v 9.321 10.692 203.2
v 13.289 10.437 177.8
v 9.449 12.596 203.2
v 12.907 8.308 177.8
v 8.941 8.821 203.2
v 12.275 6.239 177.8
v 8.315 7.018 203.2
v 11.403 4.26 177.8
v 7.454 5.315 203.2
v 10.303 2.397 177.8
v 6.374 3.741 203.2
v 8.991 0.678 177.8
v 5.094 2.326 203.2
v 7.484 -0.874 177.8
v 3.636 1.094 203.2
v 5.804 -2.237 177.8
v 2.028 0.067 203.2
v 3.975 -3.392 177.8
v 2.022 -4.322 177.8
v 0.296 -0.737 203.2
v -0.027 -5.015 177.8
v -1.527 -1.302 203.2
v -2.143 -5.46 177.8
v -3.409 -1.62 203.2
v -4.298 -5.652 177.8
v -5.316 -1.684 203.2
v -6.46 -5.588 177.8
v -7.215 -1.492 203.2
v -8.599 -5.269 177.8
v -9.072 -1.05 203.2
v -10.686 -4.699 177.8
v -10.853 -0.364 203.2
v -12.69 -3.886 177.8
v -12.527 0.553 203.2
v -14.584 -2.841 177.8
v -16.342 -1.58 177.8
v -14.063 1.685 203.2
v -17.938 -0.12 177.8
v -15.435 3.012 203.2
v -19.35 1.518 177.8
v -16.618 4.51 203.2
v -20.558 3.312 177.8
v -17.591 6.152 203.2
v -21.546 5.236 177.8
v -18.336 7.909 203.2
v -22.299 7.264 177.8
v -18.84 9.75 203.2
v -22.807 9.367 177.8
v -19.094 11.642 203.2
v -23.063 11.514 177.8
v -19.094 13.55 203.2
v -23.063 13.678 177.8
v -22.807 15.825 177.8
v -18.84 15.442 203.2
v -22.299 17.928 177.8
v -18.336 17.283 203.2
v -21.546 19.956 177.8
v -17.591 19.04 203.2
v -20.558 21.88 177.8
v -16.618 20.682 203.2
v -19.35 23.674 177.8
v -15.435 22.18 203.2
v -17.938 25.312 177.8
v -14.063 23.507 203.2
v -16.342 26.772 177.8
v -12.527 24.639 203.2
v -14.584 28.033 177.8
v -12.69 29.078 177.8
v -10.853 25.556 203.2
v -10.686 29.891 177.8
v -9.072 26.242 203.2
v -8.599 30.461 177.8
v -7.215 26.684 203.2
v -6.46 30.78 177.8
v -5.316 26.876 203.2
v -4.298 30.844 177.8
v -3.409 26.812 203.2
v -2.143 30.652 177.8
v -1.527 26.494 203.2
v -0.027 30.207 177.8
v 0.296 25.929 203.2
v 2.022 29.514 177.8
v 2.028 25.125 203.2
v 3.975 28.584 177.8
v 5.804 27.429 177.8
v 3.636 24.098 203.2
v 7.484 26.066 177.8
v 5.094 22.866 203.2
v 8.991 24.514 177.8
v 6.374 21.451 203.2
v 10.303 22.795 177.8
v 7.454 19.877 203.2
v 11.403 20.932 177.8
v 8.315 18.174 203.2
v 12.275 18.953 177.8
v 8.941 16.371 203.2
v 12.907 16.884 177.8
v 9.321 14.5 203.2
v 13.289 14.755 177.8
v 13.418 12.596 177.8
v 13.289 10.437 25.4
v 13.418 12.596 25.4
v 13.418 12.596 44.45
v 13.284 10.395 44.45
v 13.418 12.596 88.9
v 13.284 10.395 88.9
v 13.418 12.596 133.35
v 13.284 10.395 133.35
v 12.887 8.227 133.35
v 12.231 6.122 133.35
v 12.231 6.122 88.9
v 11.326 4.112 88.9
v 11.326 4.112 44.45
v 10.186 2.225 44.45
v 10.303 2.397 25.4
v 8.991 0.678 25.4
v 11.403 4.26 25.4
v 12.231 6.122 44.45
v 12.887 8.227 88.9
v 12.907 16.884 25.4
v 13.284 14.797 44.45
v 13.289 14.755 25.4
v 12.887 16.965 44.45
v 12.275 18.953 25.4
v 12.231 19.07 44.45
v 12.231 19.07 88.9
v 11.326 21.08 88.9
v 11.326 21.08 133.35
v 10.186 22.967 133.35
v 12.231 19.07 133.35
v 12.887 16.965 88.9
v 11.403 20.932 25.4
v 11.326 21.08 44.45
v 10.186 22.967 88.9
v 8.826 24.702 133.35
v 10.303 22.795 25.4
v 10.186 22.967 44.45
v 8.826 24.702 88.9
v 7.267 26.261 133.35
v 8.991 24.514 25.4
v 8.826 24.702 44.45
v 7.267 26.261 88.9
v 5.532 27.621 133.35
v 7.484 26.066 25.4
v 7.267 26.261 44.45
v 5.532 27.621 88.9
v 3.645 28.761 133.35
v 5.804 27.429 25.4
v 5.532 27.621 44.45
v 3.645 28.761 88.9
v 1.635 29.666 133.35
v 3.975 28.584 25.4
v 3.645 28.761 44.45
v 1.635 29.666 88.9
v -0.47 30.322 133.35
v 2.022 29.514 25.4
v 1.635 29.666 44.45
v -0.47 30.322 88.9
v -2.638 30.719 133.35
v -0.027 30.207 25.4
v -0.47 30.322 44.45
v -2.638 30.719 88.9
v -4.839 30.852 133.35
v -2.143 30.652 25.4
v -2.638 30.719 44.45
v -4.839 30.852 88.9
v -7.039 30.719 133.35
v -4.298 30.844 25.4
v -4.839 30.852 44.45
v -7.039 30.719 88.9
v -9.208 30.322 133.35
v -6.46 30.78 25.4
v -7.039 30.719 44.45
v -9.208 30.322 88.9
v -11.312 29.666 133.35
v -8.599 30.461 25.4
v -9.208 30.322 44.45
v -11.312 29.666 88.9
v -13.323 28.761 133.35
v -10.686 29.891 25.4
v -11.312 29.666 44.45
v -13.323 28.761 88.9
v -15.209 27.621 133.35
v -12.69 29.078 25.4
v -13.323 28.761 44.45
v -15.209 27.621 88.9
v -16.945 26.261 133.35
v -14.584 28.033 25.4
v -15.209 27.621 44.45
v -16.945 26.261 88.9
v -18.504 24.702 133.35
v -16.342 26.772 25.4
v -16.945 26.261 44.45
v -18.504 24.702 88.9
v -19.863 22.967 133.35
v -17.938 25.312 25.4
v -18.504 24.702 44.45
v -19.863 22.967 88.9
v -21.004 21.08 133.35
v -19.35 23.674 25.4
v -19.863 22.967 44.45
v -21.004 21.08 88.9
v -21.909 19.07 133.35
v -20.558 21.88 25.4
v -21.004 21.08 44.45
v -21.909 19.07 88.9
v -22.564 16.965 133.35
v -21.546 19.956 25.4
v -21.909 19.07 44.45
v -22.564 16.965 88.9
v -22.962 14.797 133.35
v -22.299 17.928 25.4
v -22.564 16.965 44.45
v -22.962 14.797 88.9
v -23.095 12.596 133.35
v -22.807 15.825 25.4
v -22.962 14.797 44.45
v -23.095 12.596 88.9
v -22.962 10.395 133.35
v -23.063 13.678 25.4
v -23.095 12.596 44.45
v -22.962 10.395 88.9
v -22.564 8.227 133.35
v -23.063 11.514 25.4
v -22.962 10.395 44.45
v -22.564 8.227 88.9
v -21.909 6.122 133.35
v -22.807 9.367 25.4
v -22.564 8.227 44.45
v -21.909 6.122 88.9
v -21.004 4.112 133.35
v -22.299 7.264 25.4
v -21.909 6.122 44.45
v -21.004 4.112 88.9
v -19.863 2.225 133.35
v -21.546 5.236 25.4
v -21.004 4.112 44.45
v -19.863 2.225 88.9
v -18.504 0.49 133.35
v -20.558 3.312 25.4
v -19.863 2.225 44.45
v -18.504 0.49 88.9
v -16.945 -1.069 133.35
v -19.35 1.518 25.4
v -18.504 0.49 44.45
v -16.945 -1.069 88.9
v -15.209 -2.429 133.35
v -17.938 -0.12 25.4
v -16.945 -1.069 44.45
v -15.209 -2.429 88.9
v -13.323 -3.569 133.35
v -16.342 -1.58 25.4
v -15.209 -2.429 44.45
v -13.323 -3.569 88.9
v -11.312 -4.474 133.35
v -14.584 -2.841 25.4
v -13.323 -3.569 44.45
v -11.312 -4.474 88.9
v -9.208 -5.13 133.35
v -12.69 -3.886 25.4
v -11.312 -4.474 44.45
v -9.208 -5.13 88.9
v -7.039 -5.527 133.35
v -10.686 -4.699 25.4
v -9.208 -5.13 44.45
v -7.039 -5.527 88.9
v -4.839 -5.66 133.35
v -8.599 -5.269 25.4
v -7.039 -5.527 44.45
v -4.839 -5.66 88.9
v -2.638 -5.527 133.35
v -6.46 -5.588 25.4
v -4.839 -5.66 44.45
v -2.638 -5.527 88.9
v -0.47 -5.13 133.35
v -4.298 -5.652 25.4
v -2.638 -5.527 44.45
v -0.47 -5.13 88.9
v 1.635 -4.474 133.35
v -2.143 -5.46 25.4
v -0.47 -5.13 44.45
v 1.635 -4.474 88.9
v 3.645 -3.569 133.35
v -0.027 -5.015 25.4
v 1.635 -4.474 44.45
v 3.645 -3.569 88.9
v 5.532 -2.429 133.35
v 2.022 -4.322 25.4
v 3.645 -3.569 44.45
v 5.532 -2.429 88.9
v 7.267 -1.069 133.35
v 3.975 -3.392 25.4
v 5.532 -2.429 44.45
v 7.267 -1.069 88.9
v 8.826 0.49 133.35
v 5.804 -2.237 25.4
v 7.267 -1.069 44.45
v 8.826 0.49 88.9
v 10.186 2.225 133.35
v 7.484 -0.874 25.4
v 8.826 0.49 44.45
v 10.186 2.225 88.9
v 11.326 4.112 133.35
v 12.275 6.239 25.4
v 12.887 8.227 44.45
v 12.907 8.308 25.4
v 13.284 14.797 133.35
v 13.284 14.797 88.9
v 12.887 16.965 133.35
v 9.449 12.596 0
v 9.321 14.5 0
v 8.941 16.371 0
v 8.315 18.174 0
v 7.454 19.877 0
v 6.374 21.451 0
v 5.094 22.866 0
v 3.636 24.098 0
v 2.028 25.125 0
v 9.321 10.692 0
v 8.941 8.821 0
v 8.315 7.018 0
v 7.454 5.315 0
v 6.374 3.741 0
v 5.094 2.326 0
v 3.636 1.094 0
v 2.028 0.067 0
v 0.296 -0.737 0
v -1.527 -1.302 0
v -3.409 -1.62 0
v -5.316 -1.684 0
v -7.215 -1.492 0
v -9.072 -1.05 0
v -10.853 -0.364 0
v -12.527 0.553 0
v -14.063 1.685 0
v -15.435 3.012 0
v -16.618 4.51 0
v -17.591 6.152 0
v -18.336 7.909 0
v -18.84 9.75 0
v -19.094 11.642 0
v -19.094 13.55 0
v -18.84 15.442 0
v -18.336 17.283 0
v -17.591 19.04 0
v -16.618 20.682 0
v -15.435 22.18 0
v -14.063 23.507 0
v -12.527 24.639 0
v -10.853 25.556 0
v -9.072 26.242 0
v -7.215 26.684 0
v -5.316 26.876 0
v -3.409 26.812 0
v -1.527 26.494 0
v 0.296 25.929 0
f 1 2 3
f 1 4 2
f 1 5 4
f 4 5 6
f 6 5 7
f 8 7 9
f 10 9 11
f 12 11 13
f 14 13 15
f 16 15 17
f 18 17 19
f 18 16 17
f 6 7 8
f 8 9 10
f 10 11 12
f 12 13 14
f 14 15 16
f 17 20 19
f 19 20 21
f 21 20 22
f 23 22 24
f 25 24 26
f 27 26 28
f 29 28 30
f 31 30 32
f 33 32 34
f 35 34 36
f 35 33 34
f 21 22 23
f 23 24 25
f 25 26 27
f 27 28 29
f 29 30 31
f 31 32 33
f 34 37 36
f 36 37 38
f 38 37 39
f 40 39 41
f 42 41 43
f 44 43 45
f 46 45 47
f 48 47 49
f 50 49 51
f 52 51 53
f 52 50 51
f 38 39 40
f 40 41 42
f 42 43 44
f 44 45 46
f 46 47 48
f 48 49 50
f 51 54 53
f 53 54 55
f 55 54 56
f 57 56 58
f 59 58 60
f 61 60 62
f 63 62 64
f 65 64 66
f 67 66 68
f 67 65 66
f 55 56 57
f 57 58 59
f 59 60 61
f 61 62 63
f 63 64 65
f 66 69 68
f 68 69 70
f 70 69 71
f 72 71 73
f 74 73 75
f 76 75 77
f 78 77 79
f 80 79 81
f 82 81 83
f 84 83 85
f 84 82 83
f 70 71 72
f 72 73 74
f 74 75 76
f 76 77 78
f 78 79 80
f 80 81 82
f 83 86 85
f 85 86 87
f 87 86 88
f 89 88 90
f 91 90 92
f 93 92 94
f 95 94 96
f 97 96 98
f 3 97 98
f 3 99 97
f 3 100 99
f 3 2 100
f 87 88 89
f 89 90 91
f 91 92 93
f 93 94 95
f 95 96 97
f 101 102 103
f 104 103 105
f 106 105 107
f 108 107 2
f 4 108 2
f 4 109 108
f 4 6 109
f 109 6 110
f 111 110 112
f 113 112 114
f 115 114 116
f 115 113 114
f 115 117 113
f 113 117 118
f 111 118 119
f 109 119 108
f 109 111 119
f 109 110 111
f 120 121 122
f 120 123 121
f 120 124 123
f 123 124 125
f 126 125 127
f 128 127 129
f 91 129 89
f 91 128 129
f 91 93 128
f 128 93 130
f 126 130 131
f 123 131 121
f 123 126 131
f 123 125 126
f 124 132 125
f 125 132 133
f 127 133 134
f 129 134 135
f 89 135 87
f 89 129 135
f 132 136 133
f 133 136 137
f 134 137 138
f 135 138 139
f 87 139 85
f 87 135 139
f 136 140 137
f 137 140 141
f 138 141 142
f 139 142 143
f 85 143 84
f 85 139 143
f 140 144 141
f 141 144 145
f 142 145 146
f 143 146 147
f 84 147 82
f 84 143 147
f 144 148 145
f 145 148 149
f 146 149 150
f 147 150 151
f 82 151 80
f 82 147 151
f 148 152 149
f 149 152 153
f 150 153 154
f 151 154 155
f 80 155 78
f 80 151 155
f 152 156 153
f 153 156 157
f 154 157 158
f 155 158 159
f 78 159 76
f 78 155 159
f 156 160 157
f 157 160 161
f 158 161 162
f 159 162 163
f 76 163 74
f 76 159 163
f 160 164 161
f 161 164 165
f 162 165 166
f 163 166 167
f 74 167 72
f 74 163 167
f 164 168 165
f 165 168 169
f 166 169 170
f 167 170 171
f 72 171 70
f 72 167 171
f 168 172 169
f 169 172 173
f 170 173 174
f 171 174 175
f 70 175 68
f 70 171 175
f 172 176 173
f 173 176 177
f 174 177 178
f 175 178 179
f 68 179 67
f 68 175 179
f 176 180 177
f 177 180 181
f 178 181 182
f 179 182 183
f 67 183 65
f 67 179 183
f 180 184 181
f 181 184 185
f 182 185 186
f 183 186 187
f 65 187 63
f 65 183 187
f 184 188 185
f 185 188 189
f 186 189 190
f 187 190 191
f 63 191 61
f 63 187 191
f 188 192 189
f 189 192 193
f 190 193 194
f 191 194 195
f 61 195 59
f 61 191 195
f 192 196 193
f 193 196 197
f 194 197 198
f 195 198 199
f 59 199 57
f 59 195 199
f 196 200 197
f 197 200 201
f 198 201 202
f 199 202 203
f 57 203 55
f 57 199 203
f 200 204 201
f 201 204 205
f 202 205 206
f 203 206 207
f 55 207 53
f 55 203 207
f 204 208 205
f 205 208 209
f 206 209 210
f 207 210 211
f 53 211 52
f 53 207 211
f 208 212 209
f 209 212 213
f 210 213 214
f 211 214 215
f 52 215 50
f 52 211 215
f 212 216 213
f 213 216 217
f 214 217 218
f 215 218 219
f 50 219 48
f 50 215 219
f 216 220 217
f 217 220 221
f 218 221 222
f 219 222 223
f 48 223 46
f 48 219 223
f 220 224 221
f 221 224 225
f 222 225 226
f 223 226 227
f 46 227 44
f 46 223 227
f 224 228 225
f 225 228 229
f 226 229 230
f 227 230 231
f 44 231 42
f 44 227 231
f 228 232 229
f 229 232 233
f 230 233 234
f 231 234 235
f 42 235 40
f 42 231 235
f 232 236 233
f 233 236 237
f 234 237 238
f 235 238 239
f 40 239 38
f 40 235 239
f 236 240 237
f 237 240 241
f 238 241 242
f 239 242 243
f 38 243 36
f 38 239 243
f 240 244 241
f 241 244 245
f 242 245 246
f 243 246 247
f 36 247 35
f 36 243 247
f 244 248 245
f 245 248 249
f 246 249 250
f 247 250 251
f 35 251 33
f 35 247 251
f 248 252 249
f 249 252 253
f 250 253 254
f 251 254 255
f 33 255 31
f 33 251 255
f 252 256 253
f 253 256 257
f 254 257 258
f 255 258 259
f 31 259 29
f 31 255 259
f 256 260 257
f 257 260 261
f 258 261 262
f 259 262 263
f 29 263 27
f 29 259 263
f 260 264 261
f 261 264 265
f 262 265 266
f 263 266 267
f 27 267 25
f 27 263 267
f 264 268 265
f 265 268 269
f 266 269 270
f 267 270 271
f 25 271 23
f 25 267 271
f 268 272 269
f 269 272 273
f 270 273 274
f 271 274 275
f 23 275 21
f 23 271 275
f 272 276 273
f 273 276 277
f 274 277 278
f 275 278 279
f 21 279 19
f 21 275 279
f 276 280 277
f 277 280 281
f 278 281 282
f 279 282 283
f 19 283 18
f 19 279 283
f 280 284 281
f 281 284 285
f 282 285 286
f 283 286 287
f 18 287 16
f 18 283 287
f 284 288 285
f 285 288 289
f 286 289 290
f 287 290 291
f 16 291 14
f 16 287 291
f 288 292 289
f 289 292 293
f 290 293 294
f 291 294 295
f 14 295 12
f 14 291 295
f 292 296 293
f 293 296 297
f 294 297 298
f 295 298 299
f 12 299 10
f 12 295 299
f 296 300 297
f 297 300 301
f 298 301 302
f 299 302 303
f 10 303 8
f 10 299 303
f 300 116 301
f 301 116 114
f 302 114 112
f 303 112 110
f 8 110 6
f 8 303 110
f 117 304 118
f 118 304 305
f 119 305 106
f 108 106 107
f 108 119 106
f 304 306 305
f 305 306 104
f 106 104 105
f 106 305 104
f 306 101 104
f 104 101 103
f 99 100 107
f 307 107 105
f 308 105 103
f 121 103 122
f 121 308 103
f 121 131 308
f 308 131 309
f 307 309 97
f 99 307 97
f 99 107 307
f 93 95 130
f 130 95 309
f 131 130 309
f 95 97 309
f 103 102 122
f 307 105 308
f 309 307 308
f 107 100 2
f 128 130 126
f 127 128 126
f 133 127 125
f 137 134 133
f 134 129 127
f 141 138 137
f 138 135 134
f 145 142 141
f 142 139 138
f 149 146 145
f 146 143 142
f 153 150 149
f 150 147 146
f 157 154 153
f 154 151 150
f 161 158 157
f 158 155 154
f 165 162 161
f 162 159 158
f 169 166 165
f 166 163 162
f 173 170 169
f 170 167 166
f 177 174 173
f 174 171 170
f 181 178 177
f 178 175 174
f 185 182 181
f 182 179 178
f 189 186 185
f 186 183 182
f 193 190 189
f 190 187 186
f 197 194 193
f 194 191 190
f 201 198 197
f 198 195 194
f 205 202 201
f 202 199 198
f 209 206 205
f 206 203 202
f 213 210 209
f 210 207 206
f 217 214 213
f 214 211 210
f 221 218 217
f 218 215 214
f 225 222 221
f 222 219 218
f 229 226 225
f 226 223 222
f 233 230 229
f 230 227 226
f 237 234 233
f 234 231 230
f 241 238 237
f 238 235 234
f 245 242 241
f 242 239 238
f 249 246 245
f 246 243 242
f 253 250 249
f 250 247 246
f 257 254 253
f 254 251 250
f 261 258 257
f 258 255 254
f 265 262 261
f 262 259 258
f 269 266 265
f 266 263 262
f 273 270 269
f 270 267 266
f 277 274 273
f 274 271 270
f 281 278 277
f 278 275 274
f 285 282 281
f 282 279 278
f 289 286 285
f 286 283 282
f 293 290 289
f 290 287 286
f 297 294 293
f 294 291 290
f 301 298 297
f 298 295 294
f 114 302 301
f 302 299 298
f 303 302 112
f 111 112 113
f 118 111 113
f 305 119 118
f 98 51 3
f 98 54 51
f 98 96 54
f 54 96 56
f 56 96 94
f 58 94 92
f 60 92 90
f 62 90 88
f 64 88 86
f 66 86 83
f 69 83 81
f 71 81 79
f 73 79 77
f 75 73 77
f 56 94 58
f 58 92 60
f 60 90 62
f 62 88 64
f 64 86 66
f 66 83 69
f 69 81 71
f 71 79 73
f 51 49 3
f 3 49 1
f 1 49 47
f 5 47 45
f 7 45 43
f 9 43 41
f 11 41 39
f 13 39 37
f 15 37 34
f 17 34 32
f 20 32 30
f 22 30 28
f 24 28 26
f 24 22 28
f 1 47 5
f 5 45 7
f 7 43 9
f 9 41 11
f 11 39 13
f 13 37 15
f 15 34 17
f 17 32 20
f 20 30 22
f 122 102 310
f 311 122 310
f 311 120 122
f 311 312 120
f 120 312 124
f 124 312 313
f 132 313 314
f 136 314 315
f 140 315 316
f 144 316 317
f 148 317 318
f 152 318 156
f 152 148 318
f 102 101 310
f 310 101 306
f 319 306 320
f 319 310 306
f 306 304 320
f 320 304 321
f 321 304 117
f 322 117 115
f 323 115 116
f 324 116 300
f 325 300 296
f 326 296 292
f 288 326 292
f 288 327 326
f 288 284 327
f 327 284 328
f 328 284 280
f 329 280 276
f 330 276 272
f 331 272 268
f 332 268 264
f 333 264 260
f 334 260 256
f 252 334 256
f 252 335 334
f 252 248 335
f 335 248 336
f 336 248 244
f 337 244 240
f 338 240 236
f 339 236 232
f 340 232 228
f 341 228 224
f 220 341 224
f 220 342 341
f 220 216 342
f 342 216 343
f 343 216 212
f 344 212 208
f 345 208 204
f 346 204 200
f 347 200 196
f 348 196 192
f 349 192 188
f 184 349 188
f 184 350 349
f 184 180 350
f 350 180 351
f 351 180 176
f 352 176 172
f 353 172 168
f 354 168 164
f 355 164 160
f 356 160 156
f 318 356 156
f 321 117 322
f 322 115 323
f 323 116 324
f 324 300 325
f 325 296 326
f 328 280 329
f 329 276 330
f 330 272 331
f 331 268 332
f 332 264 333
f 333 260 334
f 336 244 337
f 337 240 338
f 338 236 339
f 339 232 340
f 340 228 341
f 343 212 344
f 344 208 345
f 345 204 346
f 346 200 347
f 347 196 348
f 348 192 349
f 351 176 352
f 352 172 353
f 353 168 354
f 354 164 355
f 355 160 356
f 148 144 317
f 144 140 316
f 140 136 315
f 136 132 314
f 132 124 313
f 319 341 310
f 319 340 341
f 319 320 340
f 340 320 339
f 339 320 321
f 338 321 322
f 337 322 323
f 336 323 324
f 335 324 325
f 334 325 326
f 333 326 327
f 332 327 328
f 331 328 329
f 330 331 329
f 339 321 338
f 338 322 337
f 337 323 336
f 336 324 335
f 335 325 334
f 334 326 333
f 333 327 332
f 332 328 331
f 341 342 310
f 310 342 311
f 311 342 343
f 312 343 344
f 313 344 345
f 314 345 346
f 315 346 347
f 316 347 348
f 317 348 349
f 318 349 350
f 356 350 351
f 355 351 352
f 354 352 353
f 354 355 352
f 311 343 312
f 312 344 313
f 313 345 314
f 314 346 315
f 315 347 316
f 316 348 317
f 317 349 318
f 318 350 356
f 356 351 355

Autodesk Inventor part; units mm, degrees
ref_plane "YZ Plane" through (0, 0, 0) normal (1, 0, 0) x (0, 1, 0)
ref_plane "XZ Plane" through (0, 0, 0) normal (0, 1, 0) x (-1, 0, 0)
ref_plane "XY Plane" through (0, 0, 0) normal (0, 0, 1) x (1, 0, 0)
sketch "Sketch1" plane through (0, 0, 0) normal (0, 0, 1) x (1, 0, 0)
  circle A0 centre (-4.8387, 12.596) radius 18.2563
  dimension "d0" = 36.5125
extrude "Extrusion1" add sketch "Sketch1" along normal blind 203.2
chamfer "Chamfer1" distance 3.9688 distance2 25.4 1 edges at (-23.095, 12.596, 0) measured on face at (1.1407, 16.9825, 0)
chamfer "Chamfer2" distance 25.4 distance2 3.9688 1 edges at (-23.095, 12.596, 203.2) measured on face at (13.1811, 9.6675, 143.9333)
properties part number "FE-00001-04"
